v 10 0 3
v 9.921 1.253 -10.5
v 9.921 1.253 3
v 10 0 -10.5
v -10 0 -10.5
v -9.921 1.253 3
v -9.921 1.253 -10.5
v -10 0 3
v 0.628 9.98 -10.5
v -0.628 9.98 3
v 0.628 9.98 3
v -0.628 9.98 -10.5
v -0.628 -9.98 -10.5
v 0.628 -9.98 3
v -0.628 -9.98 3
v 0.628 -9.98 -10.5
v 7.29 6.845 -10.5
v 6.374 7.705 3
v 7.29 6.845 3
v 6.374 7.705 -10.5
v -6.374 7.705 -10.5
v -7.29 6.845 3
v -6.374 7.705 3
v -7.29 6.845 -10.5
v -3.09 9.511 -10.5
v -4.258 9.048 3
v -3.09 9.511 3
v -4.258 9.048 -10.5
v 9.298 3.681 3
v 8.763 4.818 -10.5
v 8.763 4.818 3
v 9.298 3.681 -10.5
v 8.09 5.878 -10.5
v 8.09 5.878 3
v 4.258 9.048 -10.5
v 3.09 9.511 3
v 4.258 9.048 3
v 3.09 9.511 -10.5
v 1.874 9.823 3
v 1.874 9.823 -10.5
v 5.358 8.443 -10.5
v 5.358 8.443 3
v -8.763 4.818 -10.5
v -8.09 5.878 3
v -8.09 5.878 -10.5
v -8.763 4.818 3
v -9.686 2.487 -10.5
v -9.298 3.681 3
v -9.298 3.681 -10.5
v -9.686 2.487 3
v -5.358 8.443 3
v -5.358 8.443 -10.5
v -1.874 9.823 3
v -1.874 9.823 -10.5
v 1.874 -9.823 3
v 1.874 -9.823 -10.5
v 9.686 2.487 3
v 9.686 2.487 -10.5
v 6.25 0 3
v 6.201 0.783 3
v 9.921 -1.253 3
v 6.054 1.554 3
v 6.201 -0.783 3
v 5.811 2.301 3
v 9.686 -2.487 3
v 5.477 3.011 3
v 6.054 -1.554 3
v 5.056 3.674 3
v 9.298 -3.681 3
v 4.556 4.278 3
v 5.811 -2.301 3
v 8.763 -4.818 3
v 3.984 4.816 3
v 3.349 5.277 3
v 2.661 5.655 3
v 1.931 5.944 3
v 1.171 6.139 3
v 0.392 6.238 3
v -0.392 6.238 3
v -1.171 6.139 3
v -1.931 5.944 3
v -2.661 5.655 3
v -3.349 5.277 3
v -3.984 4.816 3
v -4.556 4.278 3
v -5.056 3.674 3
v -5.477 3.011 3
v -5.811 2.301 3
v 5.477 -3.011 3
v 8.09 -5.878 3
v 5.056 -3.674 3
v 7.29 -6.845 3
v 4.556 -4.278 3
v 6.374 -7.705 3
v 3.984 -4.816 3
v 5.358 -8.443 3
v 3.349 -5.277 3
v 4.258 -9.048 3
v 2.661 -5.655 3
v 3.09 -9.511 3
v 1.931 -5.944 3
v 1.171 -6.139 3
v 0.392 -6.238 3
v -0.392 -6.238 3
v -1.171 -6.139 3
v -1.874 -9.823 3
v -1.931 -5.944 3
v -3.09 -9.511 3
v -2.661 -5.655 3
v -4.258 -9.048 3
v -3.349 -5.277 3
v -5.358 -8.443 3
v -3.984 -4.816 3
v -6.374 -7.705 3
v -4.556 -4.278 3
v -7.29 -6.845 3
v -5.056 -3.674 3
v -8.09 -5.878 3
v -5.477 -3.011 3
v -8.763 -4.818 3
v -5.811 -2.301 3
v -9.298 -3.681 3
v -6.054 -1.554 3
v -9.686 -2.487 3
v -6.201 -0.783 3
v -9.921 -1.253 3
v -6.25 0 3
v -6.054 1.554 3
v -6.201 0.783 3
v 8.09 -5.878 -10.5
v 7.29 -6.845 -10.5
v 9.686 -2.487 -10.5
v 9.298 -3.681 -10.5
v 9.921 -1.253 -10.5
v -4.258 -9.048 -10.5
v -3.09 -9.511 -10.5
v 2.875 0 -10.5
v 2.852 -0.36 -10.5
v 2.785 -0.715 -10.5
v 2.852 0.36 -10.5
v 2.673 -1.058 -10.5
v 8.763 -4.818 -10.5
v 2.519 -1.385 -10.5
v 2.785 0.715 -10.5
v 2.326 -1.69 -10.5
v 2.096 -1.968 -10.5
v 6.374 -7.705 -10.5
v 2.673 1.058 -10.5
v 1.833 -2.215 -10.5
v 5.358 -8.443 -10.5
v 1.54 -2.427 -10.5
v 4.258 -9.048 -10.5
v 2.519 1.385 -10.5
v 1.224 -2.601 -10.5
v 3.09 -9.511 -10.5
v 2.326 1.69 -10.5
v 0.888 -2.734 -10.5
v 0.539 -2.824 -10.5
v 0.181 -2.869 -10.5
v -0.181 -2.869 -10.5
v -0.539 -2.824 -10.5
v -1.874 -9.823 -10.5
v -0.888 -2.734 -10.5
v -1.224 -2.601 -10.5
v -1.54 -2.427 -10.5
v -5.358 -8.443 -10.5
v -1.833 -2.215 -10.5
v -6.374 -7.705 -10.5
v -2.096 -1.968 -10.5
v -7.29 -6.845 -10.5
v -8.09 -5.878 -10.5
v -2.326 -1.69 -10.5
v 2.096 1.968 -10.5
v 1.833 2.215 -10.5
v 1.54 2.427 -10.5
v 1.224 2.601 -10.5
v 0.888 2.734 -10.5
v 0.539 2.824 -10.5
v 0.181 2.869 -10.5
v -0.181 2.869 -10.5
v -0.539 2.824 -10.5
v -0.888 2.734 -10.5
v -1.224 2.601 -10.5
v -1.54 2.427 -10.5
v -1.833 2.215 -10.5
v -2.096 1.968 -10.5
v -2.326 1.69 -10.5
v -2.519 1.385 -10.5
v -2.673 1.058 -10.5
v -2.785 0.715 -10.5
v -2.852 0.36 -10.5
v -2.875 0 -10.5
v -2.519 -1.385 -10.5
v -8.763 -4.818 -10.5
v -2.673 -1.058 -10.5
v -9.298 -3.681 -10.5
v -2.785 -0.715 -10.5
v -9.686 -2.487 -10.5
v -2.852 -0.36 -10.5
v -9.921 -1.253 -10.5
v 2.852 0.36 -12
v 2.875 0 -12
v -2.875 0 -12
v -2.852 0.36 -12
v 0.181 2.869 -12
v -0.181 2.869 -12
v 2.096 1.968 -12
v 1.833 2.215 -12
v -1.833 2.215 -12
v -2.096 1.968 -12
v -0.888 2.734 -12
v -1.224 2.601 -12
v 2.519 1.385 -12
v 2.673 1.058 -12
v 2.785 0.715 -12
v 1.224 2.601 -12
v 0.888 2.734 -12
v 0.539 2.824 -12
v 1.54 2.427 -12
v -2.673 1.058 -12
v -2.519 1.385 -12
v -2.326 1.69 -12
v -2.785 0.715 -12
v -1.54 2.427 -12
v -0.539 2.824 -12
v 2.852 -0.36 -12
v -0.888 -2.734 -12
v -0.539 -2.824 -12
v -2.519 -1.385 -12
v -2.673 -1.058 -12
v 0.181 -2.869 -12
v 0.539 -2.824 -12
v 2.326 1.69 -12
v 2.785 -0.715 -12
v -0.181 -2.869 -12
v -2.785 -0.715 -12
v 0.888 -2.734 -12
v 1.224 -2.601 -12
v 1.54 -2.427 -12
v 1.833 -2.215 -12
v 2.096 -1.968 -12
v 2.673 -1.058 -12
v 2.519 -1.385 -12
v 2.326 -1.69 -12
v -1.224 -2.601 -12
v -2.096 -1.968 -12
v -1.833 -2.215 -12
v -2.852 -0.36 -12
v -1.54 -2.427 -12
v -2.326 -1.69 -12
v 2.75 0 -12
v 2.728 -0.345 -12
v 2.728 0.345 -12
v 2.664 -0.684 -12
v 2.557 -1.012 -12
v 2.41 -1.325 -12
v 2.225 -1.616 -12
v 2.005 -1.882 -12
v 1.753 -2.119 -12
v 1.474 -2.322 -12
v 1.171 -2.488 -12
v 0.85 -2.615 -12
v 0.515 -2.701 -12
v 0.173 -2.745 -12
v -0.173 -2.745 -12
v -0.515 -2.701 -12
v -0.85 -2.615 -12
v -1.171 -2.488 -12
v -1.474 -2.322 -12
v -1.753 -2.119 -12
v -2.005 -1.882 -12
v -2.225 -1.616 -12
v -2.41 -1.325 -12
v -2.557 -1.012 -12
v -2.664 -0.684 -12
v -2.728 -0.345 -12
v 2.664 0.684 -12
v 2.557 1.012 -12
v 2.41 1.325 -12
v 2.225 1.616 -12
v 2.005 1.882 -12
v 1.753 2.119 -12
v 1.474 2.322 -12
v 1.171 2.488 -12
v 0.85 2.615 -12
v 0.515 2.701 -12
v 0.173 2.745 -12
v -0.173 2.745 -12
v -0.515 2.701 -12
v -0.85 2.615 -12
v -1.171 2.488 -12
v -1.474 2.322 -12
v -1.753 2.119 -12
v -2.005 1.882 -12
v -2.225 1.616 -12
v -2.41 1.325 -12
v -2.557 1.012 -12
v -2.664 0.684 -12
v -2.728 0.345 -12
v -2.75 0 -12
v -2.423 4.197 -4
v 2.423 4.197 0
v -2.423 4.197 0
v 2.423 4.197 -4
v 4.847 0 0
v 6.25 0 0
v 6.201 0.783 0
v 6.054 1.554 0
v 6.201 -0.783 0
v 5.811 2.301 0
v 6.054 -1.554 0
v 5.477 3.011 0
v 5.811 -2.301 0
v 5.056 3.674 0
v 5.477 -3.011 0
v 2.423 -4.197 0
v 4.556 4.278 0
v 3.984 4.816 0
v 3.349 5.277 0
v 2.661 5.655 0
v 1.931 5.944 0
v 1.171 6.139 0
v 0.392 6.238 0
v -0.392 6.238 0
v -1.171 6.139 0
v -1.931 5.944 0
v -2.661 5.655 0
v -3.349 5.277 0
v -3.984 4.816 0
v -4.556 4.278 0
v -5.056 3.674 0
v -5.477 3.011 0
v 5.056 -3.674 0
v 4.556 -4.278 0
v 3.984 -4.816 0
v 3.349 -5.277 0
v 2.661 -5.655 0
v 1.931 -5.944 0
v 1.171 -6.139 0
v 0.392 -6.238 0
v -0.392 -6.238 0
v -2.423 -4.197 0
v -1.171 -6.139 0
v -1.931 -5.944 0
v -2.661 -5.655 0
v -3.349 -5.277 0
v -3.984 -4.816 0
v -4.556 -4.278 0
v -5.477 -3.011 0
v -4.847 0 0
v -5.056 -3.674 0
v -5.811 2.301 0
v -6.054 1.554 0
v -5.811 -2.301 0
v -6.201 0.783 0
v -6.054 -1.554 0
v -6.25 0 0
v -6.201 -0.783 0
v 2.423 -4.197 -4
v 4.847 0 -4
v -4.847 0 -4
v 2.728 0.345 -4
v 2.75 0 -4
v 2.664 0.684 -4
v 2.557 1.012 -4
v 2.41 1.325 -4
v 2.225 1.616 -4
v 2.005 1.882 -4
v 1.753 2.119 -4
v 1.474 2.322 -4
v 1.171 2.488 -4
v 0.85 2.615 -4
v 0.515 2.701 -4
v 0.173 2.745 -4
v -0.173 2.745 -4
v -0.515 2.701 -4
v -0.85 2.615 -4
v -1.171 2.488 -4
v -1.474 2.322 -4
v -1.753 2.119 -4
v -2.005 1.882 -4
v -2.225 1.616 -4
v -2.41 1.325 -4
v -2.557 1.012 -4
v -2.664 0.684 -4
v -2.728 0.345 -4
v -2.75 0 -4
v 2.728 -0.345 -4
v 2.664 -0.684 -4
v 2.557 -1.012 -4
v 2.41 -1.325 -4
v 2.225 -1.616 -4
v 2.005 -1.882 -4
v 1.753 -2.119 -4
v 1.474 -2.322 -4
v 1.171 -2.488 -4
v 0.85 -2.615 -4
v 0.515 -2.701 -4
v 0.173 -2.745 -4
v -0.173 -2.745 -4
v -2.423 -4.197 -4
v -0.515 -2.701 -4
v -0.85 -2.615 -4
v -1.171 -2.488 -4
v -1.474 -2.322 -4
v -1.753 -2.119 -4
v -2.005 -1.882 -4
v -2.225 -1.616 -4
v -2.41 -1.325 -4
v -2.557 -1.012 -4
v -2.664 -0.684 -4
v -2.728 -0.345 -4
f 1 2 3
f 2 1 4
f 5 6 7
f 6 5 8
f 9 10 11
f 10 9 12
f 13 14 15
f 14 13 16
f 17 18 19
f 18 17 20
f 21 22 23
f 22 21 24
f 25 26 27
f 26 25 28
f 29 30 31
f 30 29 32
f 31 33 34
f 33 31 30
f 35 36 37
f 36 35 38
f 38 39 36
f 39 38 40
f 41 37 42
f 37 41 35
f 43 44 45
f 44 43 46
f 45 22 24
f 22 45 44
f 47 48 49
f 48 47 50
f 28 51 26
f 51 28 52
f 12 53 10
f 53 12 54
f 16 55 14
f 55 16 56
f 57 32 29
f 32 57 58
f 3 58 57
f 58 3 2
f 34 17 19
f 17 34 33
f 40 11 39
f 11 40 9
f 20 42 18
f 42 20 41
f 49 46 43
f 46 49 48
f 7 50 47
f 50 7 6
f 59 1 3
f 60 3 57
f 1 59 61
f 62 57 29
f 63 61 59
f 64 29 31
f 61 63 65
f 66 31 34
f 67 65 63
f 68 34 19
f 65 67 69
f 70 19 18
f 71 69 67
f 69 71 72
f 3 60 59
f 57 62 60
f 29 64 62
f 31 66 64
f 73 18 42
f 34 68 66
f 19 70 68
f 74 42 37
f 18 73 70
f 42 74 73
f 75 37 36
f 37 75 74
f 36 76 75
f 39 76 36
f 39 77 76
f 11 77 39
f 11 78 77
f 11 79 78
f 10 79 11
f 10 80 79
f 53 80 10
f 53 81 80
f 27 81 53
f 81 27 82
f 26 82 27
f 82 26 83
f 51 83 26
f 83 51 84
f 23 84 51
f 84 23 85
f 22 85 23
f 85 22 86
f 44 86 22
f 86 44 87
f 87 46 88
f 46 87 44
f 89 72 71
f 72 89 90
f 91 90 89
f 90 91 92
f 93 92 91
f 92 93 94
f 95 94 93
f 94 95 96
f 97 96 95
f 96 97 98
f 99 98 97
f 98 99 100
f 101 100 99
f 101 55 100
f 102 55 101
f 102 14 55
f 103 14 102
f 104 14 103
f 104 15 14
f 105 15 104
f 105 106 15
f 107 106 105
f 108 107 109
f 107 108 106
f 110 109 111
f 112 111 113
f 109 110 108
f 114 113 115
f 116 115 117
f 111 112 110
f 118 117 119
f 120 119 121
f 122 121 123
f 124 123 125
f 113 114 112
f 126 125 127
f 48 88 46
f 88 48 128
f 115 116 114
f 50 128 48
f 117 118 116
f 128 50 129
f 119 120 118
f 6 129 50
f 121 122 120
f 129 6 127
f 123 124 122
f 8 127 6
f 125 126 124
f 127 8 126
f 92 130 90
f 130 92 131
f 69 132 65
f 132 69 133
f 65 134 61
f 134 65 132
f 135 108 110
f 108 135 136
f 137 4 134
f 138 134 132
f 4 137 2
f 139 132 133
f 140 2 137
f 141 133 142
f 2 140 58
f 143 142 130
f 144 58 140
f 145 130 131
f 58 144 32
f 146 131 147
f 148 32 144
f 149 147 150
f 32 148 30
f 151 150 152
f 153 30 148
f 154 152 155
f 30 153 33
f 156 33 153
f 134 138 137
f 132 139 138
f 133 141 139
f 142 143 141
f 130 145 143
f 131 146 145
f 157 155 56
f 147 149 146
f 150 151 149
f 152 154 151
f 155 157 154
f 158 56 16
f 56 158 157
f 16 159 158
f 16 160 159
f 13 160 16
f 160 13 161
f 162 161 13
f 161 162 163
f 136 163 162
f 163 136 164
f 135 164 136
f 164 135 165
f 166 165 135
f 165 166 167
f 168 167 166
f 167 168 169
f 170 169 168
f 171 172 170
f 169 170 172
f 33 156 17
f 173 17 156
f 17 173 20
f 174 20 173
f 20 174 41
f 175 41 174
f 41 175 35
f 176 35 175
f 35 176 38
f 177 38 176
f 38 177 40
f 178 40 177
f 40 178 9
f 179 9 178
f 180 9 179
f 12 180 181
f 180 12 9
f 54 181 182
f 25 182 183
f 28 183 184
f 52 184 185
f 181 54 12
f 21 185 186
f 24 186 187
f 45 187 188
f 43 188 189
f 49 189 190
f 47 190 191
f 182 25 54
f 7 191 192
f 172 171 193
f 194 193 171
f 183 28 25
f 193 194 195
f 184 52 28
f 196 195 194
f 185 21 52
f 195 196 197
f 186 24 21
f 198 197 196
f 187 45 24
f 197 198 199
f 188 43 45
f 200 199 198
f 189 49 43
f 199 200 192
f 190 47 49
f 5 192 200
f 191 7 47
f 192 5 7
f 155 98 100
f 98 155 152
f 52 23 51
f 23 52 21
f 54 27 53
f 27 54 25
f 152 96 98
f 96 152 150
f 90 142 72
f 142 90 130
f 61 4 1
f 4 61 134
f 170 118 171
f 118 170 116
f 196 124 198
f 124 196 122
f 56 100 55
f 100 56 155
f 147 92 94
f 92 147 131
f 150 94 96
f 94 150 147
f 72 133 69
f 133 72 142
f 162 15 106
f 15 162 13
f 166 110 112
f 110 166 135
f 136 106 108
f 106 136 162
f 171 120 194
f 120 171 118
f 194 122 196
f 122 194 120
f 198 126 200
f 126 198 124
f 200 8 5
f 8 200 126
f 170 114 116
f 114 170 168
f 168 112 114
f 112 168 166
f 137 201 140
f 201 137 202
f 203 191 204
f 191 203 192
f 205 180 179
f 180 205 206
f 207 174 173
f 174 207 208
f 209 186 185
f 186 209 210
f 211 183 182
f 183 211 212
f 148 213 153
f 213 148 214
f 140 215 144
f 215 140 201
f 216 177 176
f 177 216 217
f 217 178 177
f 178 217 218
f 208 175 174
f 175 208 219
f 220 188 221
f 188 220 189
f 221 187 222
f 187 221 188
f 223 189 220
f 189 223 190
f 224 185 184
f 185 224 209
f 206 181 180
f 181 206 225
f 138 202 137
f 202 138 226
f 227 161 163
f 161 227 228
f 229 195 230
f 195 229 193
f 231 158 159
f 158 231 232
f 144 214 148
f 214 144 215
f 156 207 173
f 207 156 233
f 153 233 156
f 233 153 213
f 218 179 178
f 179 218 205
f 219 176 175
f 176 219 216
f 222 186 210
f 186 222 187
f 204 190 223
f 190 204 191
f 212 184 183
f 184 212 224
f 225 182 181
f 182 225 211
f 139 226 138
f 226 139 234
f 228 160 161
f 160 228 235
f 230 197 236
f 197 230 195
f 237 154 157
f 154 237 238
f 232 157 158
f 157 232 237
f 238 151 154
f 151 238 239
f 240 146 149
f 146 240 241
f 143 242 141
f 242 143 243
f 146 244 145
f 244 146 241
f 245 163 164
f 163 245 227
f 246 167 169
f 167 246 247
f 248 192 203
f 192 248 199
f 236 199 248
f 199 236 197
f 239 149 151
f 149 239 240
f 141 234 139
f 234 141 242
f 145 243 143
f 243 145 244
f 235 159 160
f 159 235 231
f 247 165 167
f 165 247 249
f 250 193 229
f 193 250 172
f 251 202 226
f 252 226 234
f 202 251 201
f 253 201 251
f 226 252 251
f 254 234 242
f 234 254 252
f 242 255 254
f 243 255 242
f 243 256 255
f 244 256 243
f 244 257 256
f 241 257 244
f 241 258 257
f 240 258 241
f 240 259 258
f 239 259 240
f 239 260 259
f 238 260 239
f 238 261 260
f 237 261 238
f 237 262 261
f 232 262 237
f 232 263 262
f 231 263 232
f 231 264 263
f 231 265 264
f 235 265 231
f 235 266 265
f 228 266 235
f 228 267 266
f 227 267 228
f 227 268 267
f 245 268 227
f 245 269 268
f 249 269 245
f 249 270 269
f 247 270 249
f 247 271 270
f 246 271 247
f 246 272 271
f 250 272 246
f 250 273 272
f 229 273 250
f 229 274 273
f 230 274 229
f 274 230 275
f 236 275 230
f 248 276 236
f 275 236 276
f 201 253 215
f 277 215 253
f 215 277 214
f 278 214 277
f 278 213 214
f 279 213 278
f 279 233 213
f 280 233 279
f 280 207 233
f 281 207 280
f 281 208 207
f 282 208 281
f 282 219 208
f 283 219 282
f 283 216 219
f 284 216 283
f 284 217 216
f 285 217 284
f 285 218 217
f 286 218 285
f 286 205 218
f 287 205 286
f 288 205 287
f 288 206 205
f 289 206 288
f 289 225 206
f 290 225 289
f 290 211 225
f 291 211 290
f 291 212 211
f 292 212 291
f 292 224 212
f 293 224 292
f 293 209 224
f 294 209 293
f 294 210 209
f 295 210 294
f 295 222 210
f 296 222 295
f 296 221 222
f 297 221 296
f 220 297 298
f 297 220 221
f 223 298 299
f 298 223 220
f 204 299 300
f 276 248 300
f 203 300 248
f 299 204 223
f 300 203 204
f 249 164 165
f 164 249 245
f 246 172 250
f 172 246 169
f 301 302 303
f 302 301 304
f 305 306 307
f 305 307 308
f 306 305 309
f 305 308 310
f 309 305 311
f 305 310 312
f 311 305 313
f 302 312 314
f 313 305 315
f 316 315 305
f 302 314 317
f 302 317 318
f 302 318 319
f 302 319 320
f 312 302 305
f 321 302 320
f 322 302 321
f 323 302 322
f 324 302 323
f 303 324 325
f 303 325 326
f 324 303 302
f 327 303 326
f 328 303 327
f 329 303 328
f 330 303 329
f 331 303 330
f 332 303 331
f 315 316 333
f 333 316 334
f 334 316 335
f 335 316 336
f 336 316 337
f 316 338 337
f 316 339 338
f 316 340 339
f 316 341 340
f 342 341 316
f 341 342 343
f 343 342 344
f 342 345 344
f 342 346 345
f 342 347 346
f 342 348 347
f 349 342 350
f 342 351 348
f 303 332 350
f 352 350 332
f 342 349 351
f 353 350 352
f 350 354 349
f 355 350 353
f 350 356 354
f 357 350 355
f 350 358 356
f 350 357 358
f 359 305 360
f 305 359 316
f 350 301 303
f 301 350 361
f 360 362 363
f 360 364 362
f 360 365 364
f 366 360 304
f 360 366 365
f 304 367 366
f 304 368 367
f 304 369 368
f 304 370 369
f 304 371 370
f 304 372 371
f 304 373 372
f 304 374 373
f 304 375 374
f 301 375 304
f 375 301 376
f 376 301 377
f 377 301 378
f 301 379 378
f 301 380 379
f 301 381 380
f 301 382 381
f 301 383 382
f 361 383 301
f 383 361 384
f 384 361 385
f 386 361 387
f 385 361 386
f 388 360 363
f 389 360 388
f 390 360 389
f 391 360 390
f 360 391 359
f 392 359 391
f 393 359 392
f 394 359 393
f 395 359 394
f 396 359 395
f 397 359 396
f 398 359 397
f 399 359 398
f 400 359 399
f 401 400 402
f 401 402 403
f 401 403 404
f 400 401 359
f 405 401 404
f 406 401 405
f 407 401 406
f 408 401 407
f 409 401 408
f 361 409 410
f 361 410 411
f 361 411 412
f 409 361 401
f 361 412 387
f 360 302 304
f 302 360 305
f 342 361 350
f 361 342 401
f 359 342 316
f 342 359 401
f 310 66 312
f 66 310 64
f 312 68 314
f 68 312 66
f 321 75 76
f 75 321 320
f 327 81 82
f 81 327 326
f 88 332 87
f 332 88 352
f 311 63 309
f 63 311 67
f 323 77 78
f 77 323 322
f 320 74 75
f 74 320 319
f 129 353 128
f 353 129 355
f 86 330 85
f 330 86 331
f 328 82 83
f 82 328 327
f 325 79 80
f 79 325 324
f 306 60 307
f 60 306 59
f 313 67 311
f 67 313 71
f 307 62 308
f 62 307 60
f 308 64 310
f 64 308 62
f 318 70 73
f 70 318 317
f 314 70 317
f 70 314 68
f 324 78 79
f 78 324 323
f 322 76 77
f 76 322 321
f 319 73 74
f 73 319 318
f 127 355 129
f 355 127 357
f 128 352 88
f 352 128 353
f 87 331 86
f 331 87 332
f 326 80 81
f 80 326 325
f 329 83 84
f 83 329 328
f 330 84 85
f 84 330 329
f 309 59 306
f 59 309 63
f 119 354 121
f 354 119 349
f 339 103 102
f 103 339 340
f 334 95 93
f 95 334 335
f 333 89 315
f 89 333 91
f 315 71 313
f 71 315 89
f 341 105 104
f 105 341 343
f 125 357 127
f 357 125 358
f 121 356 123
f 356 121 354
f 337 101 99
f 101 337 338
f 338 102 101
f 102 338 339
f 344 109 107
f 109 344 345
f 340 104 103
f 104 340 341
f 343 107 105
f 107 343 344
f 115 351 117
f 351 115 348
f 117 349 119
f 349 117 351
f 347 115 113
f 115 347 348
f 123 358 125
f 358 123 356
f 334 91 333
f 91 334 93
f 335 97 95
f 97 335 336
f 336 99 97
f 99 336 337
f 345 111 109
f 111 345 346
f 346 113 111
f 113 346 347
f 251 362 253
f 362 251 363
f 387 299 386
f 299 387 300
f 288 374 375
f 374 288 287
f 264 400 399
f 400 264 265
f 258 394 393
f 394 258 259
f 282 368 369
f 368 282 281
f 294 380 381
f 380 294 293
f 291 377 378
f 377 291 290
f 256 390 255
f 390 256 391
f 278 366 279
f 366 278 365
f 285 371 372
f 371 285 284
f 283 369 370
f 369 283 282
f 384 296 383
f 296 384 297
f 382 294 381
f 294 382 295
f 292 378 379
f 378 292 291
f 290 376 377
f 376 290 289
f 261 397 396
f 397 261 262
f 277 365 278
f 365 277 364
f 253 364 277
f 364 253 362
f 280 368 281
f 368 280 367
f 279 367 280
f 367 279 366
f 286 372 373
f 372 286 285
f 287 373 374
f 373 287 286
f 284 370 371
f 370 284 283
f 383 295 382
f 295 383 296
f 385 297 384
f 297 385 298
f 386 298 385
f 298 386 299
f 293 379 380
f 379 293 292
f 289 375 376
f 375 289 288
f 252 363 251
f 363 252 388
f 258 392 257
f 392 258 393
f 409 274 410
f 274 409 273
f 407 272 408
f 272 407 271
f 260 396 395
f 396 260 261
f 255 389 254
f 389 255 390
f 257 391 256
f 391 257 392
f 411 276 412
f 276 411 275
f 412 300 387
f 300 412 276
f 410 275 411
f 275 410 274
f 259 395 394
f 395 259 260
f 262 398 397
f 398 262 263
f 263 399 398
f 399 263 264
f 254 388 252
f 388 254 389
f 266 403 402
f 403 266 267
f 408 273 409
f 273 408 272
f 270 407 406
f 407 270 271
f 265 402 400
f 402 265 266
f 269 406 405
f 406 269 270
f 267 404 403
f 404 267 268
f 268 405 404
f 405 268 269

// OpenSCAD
$fn = 50;

difference() {
	union() {
		translate(v = [0, 0, -10.5]) {
			cylinder(h = 13.5, r = 10.0);
		}
		#translate(v = [0, 0, -12.0]) {
			cylinder(h = 12, r = 2.875);
		}
	}
	union() {
		translate(v = [0, 0, 0]) {
			rotate(a = [0, 0, 0]) {
				difference() {
					union() {
						translate(v = [0, 0, -4]) {
							linear_extrude(height = 4) {
								polygon(points = [[4.8468, 0.0], [2.4234000000000004, 4.197451927062417], [-2.423399999999999, 4.197451927062417], [-4.8468, 5.935618106107392e-16], [-2.423400000000002, -4.197451927062416], [2.423399999999997, -4.197451927062419]]);
							}
						}
					}
					union();
				}
			}
		}
		#cylinder(h = 3, r = 6.25);
		#translate(v = [0, 0, -100.0]) {
			cylinder(h = 200, r = 2.75);
		}
	}
}
